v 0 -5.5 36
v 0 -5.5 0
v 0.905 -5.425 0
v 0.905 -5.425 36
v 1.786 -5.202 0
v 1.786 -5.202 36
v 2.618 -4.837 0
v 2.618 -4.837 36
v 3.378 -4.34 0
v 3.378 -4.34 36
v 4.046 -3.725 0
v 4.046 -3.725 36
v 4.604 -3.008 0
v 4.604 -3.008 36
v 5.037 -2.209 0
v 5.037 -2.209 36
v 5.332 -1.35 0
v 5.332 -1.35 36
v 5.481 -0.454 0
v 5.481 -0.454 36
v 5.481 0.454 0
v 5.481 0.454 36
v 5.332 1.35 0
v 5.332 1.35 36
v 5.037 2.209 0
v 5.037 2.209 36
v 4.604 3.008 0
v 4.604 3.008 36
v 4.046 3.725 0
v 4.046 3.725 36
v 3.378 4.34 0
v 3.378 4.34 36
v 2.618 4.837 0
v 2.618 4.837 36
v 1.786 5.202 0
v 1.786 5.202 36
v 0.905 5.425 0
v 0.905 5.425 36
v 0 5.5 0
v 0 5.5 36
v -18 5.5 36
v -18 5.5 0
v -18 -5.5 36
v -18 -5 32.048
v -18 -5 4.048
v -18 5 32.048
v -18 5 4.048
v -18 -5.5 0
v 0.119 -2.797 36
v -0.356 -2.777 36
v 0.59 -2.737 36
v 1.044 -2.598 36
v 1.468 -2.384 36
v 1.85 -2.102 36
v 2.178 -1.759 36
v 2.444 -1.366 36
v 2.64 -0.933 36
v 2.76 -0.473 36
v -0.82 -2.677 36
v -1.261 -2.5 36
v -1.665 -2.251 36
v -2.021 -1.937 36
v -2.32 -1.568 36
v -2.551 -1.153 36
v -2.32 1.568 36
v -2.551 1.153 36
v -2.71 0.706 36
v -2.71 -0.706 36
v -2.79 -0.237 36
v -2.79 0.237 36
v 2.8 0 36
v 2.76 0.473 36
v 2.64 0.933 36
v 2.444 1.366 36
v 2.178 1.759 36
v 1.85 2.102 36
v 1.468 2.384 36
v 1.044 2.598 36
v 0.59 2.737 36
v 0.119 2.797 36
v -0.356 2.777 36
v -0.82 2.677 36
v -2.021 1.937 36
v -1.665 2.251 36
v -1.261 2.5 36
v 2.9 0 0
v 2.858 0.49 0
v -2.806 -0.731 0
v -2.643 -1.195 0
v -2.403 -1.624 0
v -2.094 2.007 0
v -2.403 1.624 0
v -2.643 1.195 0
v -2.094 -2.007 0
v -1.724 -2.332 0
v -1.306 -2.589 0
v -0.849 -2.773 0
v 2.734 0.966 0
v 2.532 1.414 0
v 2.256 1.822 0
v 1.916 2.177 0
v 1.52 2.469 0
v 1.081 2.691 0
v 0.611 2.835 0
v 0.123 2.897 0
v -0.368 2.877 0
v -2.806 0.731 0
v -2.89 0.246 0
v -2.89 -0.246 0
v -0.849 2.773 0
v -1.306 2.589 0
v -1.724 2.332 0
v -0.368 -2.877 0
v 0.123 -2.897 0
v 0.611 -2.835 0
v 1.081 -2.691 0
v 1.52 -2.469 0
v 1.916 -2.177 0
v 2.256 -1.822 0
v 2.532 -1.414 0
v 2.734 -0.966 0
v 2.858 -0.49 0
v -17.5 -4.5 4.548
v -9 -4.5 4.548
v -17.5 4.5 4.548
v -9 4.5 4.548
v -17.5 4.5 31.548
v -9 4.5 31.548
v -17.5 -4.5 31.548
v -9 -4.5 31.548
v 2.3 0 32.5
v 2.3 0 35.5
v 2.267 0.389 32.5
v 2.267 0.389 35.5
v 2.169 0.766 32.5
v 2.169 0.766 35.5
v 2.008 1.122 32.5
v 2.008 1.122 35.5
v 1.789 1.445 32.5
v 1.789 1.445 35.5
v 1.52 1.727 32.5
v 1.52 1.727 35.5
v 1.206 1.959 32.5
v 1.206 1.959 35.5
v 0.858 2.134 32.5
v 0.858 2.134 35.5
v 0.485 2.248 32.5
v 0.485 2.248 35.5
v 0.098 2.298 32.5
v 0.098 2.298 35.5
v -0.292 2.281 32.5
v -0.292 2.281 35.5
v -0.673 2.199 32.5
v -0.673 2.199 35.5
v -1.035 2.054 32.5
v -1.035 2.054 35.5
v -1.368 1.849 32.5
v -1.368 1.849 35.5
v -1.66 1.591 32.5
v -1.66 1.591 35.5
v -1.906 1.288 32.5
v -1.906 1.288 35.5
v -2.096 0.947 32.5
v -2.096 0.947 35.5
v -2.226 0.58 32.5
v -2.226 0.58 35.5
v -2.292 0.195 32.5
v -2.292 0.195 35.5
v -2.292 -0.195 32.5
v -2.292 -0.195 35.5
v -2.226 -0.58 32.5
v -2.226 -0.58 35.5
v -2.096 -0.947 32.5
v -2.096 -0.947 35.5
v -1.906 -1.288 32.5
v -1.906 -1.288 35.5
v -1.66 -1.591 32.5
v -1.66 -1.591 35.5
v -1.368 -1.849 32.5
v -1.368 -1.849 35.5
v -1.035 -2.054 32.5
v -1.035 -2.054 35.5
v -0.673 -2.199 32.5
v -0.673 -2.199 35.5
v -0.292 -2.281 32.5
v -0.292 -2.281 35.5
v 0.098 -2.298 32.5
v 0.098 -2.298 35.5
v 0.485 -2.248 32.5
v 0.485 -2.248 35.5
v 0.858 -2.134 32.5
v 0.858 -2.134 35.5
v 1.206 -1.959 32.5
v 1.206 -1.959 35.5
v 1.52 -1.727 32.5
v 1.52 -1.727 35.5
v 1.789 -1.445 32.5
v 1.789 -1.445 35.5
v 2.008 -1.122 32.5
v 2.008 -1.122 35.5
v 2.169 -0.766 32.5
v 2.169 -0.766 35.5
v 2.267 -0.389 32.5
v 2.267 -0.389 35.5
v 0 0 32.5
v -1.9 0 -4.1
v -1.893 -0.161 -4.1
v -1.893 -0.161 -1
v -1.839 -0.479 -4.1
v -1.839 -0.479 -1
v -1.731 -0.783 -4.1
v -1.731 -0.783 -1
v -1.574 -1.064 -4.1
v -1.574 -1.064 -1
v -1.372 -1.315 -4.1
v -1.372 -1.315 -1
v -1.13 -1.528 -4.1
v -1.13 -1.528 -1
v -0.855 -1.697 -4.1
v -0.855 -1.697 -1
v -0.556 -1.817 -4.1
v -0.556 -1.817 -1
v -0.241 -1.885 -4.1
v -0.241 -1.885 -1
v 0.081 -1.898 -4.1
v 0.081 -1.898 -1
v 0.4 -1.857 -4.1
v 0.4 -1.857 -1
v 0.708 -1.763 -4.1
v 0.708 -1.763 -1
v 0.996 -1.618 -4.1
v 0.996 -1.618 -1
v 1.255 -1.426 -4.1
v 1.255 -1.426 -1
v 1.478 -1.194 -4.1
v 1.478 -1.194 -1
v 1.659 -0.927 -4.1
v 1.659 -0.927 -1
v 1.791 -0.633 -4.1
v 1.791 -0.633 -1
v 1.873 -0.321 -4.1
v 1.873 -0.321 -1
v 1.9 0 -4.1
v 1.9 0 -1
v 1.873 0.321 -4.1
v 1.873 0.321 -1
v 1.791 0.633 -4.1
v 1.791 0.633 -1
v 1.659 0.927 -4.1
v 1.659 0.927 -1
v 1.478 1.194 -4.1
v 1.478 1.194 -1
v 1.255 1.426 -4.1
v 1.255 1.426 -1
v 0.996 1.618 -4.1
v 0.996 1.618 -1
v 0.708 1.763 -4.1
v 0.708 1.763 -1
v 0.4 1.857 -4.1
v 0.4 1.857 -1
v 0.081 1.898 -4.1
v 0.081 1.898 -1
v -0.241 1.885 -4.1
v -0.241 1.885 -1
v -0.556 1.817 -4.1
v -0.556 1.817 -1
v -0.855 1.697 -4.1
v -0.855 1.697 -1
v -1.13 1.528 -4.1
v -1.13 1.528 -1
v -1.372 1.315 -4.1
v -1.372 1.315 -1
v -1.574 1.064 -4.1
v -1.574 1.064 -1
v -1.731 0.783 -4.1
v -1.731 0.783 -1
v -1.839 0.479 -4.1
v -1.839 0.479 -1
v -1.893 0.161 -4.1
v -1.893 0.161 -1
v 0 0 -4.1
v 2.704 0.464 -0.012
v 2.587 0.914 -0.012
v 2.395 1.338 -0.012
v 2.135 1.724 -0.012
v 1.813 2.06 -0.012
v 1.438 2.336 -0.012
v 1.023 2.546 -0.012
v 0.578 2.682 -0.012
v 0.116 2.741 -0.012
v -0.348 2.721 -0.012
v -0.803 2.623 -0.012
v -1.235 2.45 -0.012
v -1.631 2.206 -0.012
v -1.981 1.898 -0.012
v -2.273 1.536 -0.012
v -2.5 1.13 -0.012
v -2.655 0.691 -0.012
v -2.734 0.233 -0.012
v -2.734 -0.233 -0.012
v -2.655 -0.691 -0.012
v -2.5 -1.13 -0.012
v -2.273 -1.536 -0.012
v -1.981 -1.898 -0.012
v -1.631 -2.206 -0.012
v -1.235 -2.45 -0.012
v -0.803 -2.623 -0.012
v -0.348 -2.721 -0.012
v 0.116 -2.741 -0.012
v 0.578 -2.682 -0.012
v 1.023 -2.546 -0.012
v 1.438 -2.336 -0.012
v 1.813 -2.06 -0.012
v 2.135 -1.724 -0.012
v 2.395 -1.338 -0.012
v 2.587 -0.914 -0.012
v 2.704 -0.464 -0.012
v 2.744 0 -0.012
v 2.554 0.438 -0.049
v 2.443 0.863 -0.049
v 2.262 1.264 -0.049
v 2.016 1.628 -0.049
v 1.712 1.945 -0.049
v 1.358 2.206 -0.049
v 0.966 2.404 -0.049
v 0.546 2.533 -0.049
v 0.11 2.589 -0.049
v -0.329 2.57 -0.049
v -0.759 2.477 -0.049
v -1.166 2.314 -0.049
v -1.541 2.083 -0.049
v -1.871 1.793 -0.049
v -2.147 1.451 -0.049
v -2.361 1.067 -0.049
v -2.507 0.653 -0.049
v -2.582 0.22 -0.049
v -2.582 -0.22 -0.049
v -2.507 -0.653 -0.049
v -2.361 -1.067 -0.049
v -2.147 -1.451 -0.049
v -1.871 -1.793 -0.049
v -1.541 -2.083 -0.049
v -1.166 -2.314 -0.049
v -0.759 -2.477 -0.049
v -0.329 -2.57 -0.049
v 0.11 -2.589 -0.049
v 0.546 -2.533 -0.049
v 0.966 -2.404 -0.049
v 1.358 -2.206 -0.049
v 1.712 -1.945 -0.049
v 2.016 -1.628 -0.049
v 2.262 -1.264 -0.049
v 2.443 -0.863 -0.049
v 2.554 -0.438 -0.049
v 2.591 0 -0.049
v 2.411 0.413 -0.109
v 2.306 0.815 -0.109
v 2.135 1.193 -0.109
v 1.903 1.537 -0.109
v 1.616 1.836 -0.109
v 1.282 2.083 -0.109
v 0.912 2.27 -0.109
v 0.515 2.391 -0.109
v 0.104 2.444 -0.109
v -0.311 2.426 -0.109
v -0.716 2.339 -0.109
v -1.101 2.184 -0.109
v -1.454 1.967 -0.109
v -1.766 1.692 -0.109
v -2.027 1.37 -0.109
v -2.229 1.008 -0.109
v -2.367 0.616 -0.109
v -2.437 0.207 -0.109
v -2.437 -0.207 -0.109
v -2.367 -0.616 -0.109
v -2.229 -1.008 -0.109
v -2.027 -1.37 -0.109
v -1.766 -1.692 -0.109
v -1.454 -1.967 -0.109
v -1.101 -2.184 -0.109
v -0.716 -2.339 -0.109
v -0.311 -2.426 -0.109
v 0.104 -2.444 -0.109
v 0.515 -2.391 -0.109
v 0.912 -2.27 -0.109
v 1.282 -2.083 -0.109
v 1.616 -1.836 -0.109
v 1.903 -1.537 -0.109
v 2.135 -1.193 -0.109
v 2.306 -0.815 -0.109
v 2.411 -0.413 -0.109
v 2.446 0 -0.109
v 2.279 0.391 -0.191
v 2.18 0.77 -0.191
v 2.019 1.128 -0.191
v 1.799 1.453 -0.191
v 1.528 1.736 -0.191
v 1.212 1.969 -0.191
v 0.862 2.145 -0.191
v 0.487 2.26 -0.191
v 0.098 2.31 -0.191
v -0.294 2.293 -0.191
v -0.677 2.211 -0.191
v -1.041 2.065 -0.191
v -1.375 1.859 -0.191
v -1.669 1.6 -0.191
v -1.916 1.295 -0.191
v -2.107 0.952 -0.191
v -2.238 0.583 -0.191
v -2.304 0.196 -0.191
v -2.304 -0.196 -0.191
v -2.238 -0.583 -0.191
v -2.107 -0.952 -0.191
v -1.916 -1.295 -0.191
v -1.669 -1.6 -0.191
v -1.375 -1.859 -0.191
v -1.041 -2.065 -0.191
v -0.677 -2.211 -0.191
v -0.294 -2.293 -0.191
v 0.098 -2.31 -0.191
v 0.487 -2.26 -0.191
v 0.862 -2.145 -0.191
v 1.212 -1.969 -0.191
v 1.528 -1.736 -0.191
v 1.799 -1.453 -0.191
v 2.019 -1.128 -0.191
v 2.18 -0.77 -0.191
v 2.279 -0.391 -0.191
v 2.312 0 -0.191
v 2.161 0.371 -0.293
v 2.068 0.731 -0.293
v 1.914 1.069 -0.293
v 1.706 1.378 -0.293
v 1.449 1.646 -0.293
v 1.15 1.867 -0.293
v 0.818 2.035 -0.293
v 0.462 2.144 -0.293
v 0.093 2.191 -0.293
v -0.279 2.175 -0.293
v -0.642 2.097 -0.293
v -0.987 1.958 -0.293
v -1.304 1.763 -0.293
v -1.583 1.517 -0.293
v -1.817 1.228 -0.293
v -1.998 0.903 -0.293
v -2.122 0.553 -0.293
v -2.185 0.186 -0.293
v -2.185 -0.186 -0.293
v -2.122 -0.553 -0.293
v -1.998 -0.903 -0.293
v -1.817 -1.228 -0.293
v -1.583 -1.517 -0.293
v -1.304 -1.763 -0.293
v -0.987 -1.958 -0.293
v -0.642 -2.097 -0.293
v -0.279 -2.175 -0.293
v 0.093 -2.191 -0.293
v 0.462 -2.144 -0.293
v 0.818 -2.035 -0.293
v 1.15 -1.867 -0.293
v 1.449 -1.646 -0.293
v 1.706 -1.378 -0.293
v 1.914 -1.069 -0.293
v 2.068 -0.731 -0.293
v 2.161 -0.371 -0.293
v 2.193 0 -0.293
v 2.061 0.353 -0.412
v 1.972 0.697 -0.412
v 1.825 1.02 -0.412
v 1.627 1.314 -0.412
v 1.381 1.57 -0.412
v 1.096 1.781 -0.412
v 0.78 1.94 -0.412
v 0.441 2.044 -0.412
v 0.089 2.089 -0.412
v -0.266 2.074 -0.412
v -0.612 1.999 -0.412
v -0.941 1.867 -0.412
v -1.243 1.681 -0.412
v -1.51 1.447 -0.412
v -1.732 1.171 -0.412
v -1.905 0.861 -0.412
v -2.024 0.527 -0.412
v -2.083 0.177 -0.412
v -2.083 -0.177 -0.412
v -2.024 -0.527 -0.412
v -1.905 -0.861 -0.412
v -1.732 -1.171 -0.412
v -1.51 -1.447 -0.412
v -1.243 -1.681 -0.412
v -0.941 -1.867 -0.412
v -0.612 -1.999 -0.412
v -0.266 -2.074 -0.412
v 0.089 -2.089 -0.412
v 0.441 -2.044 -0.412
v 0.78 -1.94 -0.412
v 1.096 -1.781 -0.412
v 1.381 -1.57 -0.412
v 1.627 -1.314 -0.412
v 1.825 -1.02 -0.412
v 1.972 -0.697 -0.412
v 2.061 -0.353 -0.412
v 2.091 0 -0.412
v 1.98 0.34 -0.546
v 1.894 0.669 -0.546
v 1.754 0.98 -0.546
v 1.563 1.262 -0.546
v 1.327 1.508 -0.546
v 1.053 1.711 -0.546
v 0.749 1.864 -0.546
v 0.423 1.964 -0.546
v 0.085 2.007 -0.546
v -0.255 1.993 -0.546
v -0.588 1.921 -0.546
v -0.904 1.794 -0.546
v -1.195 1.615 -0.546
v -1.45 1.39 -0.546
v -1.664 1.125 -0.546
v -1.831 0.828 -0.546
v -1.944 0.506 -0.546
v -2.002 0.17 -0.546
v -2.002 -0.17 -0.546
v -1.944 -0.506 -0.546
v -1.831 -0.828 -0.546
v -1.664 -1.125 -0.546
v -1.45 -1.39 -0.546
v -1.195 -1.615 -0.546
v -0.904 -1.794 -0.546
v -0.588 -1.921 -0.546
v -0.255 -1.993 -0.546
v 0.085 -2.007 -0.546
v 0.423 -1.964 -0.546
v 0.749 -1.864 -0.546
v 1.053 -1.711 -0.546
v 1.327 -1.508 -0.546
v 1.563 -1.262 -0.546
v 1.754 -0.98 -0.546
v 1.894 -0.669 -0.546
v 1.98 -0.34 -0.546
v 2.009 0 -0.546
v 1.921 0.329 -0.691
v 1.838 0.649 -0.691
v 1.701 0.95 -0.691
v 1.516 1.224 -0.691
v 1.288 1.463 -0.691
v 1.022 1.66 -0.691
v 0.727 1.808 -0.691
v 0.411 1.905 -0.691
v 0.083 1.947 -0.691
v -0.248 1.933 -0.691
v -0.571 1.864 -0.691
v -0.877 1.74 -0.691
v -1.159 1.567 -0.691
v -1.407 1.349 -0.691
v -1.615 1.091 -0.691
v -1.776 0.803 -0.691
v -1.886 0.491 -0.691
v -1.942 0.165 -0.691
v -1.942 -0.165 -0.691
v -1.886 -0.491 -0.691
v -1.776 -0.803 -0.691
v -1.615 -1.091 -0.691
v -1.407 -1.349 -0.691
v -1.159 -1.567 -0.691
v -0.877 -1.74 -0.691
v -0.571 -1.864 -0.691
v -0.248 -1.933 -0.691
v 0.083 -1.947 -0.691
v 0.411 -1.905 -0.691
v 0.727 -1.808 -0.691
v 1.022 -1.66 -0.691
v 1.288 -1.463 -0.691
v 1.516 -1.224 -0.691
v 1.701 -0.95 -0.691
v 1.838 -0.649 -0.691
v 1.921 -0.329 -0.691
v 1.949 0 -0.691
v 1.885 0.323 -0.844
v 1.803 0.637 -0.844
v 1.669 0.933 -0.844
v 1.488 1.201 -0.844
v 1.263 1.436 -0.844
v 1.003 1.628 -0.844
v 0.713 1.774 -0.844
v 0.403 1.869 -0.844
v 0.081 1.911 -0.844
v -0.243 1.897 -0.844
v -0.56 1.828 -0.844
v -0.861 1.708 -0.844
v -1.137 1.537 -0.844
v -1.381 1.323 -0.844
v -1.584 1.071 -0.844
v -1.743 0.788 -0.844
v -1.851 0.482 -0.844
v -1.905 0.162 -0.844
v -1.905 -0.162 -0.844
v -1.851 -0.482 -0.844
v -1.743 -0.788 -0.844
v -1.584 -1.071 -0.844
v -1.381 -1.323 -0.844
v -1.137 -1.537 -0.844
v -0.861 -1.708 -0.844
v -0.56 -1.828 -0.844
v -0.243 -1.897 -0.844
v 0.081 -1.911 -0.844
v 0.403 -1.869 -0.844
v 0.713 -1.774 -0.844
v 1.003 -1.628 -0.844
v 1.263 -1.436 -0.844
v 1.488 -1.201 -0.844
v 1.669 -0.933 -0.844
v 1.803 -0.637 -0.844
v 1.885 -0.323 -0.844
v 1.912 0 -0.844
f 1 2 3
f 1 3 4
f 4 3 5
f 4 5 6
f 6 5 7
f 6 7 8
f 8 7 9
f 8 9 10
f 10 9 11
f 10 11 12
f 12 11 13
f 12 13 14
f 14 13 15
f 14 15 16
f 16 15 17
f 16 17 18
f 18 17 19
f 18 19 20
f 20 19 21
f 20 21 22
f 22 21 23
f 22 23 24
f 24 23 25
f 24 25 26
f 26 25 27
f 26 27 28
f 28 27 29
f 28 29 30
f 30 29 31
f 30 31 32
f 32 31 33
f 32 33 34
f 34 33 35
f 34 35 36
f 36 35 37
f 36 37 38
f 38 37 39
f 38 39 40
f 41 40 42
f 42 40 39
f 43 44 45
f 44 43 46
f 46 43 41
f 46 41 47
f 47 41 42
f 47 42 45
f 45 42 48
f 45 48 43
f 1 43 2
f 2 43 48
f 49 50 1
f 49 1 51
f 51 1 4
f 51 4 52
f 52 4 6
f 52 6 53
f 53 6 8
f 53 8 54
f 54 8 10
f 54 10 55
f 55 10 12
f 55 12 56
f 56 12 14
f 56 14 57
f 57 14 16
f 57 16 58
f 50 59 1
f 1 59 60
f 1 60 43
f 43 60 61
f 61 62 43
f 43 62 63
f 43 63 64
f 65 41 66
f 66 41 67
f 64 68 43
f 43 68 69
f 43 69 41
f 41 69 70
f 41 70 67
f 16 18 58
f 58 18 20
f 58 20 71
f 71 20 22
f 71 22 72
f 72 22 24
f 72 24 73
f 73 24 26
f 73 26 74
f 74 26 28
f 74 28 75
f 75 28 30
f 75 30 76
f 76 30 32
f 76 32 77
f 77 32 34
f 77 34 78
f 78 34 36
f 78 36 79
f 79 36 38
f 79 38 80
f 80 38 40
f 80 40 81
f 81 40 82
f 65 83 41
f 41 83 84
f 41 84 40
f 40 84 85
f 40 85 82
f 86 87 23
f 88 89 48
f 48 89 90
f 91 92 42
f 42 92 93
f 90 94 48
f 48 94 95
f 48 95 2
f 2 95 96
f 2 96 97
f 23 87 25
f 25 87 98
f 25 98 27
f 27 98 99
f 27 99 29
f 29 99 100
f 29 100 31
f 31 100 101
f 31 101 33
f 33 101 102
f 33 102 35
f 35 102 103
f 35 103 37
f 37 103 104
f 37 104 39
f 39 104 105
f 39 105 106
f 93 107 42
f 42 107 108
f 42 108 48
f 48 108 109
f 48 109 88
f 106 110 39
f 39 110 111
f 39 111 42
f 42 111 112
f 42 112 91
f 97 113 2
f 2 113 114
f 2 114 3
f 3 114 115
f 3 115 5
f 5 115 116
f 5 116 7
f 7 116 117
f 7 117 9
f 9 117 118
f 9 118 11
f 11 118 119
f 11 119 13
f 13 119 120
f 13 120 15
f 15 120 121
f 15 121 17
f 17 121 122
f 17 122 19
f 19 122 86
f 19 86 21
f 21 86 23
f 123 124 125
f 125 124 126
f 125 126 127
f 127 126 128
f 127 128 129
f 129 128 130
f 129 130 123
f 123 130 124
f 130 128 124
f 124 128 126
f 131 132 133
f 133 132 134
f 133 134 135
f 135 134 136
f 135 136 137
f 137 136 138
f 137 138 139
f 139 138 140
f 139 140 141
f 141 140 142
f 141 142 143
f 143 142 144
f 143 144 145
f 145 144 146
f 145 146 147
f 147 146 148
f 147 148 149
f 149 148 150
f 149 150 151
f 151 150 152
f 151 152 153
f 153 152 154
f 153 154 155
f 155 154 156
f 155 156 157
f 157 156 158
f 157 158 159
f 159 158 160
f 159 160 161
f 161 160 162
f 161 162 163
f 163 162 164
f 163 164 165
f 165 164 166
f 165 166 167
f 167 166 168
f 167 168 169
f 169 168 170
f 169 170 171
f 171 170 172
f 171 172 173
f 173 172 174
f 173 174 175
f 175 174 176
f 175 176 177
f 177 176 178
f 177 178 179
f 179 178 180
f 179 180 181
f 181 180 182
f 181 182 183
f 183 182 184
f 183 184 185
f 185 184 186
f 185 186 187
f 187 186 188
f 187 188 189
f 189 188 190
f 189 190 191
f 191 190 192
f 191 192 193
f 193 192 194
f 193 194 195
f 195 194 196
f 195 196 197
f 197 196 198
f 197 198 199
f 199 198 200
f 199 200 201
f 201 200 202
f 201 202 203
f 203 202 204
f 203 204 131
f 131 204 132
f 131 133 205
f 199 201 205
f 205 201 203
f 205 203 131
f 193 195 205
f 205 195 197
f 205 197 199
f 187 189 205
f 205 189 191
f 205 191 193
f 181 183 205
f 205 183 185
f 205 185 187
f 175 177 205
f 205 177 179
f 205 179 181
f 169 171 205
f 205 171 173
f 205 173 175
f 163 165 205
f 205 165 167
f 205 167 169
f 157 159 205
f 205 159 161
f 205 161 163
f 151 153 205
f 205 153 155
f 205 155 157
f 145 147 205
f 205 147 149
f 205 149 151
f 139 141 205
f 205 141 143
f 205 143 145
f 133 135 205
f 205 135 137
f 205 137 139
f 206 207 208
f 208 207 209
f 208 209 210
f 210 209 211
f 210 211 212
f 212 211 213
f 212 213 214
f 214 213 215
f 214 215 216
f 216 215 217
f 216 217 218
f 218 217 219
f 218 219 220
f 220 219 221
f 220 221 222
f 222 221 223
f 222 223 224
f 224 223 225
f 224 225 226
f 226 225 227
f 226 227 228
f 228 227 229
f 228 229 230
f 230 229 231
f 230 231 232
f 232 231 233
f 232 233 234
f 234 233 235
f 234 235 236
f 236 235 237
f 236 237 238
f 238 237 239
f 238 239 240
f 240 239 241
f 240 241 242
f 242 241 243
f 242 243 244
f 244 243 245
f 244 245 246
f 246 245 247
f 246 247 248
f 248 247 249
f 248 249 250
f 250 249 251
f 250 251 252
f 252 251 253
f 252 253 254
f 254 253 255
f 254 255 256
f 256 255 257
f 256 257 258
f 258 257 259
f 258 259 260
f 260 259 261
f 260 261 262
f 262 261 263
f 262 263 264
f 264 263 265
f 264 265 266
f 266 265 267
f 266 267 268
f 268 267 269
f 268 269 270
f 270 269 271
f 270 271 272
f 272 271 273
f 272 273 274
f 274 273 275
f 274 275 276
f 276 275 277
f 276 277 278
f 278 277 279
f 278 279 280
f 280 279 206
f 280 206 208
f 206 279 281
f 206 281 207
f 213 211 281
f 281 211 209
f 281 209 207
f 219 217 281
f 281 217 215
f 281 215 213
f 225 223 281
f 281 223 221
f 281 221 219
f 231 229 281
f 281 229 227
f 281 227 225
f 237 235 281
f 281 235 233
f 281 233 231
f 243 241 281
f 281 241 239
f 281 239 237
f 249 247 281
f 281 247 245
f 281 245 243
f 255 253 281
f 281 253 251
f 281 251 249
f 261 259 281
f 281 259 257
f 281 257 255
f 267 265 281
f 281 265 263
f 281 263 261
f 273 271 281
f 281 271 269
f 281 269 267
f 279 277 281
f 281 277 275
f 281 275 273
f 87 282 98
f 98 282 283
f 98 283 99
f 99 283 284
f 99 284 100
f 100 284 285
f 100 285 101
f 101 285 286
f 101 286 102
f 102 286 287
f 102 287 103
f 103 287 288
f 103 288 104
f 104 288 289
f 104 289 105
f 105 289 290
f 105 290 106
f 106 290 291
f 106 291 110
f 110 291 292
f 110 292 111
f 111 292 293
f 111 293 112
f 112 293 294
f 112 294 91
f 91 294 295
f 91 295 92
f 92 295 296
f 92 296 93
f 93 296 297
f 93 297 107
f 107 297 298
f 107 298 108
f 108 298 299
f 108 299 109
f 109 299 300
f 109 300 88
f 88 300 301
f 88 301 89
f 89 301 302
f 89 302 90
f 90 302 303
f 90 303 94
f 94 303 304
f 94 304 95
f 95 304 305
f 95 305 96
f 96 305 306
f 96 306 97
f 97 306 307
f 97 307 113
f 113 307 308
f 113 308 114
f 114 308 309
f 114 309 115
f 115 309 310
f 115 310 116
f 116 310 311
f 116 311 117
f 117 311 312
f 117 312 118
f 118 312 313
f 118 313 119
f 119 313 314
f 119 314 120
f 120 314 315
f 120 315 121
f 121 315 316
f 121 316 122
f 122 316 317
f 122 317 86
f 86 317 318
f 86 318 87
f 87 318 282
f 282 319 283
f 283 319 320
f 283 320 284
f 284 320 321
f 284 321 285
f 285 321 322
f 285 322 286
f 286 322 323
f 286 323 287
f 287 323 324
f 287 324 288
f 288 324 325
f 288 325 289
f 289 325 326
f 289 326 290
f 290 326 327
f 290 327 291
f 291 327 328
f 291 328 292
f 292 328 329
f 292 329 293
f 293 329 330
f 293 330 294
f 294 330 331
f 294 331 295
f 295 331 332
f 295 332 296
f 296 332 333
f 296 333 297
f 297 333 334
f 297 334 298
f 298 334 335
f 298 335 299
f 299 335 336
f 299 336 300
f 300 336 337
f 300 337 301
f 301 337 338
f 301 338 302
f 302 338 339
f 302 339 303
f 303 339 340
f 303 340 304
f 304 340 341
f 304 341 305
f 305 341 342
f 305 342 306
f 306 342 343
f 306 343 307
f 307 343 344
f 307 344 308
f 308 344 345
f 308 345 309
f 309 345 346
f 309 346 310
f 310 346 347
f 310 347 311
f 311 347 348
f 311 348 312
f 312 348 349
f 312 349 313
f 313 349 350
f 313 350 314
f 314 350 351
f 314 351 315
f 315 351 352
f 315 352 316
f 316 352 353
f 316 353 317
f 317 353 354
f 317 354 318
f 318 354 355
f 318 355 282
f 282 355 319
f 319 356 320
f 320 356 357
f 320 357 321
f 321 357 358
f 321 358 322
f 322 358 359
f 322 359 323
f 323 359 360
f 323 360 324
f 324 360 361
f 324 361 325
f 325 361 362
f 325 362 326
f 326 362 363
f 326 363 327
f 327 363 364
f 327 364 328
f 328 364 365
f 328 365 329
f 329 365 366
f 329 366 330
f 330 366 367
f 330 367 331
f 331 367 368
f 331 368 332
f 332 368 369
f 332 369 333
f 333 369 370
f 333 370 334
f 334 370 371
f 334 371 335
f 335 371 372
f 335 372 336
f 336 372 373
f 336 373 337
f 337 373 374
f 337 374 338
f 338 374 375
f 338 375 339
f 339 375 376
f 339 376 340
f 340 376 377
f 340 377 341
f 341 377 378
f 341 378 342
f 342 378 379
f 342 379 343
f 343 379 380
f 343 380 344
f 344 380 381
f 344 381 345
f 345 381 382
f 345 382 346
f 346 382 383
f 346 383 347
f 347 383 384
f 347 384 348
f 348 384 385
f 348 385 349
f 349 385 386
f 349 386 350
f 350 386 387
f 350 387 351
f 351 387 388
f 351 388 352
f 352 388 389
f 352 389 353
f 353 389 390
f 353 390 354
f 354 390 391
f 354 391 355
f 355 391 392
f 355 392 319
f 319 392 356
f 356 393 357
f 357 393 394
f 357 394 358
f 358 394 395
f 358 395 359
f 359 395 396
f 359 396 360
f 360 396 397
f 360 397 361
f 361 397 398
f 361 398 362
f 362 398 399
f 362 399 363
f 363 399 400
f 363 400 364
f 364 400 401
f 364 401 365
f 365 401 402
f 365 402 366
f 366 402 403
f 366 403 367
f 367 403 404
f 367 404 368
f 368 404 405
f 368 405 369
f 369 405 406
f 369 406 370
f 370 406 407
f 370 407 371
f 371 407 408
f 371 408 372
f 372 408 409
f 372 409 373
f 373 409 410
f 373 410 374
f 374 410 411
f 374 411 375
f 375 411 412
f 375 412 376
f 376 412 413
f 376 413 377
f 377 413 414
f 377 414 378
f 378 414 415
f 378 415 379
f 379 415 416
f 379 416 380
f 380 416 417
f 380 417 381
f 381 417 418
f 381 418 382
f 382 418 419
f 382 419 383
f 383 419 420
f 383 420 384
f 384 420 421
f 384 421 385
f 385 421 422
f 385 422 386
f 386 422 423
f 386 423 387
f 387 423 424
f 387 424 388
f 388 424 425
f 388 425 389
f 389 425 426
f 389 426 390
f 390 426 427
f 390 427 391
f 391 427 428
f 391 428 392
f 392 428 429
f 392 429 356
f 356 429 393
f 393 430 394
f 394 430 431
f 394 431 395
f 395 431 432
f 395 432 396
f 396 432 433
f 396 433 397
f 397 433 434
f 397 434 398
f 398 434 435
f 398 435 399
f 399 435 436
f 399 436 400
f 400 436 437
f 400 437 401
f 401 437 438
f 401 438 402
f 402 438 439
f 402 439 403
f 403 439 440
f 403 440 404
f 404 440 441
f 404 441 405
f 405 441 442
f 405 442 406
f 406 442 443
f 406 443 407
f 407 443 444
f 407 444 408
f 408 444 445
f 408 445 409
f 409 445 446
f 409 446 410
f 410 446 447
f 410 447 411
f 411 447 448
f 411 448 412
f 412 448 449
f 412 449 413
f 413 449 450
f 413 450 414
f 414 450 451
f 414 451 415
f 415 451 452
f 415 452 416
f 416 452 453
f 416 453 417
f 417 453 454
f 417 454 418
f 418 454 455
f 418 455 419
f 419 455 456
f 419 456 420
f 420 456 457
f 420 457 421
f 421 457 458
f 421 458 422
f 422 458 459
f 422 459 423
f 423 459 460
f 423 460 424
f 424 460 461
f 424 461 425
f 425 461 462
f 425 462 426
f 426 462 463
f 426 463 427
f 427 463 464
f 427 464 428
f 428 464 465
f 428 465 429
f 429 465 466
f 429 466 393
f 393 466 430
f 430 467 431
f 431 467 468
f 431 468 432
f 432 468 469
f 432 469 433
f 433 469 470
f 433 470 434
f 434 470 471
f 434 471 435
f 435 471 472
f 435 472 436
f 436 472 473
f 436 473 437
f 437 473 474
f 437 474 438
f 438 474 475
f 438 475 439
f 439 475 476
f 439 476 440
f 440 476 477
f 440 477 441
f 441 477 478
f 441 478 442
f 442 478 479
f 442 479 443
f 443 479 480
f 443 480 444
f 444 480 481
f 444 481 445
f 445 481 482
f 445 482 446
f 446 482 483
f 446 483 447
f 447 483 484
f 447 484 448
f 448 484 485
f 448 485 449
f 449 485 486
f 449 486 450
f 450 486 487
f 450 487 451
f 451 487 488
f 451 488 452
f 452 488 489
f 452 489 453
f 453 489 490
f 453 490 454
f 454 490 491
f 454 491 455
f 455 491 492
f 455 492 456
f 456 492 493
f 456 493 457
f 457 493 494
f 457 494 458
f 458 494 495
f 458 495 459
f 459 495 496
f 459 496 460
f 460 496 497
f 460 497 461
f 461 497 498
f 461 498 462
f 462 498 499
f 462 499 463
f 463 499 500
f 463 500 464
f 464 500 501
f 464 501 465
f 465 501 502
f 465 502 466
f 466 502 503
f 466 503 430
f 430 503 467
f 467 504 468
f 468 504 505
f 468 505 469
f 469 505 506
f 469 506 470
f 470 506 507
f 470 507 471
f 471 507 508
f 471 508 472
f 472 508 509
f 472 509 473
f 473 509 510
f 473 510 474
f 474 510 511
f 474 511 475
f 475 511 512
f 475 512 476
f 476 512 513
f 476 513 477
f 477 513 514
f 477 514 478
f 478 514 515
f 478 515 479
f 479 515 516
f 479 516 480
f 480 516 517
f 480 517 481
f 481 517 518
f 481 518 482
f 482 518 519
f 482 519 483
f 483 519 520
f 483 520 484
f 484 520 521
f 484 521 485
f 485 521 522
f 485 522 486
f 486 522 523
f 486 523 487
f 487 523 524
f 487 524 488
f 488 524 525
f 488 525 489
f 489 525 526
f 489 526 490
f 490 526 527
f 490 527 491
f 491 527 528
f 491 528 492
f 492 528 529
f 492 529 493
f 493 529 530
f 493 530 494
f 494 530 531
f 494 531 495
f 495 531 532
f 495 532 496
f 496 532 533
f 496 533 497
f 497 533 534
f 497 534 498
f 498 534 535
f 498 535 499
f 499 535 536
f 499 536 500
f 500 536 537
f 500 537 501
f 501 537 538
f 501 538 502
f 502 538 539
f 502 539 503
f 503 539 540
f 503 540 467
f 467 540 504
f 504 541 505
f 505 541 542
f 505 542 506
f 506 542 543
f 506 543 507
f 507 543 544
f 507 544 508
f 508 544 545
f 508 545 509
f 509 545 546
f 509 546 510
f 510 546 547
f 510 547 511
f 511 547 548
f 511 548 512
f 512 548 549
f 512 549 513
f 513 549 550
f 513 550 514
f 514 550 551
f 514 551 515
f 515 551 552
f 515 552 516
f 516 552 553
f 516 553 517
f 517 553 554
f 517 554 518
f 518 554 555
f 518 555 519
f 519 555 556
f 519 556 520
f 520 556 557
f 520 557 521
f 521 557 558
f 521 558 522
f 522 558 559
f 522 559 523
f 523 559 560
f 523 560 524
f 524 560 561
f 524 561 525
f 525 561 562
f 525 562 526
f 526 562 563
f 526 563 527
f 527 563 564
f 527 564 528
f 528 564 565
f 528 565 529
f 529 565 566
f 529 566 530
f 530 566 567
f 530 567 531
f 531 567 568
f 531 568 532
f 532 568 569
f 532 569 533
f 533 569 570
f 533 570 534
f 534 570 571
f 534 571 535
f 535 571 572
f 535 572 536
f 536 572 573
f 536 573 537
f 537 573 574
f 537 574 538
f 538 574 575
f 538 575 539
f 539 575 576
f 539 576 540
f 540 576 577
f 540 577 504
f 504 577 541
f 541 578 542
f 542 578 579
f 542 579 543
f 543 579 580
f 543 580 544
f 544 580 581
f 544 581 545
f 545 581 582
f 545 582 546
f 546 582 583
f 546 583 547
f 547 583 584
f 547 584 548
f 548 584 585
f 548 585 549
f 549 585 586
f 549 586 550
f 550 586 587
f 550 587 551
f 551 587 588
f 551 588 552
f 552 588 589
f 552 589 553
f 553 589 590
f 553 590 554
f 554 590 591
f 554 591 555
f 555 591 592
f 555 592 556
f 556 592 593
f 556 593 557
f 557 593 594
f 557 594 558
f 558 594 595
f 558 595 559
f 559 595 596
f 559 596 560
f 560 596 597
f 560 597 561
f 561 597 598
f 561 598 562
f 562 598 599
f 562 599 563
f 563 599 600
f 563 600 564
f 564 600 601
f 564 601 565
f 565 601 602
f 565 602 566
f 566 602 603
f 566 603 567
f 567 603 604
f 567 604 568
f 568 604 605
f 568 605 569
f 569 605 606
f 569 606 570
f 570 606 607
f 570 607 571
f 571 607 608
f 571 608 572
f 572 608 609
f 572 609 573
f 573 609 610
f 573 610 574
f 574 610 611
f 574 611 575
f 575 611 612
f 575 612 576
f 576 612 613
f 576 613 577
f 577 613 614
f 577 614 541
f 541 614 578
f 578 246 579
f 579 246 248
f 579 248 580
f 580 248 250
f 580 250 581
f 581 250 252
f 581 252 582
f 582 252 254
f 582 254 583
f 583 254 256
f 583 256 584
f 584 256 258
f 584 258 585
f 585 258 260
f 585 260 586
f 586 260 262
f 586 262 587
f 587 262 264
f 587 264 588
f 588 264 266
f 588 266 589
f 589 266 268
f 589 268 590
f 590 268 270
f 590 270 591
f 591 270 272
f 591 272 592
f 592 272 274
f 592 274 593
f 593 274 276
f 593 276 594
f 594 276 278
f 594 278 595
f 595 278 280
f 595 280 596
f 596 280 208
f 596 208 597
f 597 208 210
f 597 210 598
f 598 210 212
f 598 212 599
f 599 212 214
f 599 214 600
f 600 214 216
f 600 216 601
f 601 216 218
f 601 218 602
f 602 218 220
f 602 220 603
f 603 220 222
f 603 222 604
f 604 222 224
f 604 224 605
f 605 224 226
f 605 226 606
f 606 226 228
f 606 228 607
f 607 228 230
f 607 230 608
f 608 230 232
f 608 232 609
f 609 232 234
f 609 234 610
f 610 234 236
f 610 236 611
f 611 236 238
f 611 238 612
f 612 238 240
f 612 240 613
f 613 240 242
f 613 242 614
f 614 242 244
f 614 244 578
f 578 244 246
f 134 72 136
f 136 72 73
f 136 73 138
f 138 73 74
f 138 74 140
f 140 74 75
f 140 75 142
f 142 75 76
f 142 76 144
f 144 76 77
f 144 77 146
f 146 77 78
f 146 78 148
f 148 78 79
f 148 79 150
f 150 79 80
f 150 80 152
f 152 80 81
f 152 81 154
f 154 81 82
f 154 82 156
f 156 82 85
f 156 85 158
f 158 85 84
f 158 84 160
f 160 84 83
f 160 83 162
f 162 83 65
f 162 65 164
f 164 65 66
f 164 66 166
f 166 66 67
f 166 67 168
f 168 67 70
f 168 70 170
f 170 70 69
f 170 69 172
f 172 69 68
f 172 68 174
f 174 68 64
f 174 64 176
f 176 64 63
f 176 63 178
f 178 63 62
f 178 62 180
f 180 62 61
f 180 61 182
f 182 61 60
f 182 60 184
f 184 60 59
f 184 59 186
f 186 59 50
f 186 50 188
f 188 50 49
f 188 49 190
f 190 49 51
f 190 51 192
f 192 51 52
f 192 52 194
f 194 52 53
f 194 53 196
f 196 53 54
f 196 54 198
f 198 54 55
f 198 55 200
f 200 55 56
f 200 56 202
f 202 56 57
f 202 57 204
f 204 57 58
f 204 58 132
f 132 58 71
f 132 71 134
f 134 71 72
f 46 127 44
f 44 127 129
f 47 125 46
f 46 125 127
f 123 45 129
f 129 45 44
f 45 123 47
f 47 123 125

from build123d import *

# Parameters (mm, degrees)
BOSS_EXTRU_1_DEPTH      = 36
ESQUISSE2_W             = 27
ESQUISSE2_H             = 9
ENL_V_MAT_EXTRU_1_DEPTH = 9
ESQUISSE3_R             = 2.3
ENL_V_MAT_EXTRU_2_DEPTH = 3.5
ESQUISSE4_R             = 1.9
BOSS_EXTRU_2_DEPTH      = 4.1
CONG_1_R                = 1
CHANFREIN1_SIZE         = 0.5
CHANFREIN2_SIZE         = 0.5


with BuildPart() as part:
    # Esquisse1 → Boss.-Extru.1 (new body)
    with BuildSketch(Plane.XY):
        with BuildLine():
            Line((0, 5.5), (-18, 5.5))
            Line((-18, 5.5), (-18, -5.5))
            Line((-18, -5.5), (0, -5.5))
            ThreePointArc((0, -5.5), (5.5, 0), (0, 5.5))
        make_face()
    extrude(amount=BOSS_EXTRU_1_DEPTH)

    # Esquisse2 → Enlèv. mat.-Extru.1 (cut)
    with BuildSketch(Plane.ZY.offset(18)):
        with Locations((18.047533914, 0)):
            Rectangle(ESQUISSE2_W, ESQUISSE2_H)
    extrude(amount=-ENL_V_MAT_EXTRU_1_DEPTH, mode=Mode.SUBTRACT)

    # Esquisse3 → Enlèv. mat.-Extru.2 (cut)
    with BuildSketch(Plane.XY.offset(36)):
        Circle(ESQUISSE3_R)
    extrude(amount=-ENL_V_MAT_EXTRU_2_DEPTH, mode=Mode.SUBTRACT)

    # Esquisse4 → Boss.-Extru.2 (add)
    with BuildSketch(Plane(origin=(0, 0, 0), x_dir=(-1, 0, 0), z_dir=(0, 0, -1))):
        with Locations(Location((0, 0, 0), (0, 0, 180))):
            Circle(ESQUISSE4_R)
    extrude(amount=BOSS_EXTRU_2_DEPTH)

    # Congé1
    cong_1_edges = [part.edges().sort_by_distance(p)[0] for p in [
        (-1.9, 0, 0),
    ]]
    fillet(cong_1_edges, radius=CONG_1_R)

    # Chanfrein1
    chanfrein1_edges = [part.edges().sort_by_distance(p)[0] for p in [
        (-2.3, 0, 36),
    ]]
    chamfer(chanfrein1_edges, length=CHANFREIN1_SIZE)

    # Chanfrein2
    chanfrein2_edges = [part.edges().sort_by_distance(p)[0] for p in [
        (-18, 0, 4.547533914),
        (-18, -4.5, 18.047533914),
        (-18, 0, 31.547533914),
        (-18, 4.5, 18.047533914),
    ]]
    chamfer(chanfrein2_edges, length=CHANFREIN2_SIZE)


solid = part.part
